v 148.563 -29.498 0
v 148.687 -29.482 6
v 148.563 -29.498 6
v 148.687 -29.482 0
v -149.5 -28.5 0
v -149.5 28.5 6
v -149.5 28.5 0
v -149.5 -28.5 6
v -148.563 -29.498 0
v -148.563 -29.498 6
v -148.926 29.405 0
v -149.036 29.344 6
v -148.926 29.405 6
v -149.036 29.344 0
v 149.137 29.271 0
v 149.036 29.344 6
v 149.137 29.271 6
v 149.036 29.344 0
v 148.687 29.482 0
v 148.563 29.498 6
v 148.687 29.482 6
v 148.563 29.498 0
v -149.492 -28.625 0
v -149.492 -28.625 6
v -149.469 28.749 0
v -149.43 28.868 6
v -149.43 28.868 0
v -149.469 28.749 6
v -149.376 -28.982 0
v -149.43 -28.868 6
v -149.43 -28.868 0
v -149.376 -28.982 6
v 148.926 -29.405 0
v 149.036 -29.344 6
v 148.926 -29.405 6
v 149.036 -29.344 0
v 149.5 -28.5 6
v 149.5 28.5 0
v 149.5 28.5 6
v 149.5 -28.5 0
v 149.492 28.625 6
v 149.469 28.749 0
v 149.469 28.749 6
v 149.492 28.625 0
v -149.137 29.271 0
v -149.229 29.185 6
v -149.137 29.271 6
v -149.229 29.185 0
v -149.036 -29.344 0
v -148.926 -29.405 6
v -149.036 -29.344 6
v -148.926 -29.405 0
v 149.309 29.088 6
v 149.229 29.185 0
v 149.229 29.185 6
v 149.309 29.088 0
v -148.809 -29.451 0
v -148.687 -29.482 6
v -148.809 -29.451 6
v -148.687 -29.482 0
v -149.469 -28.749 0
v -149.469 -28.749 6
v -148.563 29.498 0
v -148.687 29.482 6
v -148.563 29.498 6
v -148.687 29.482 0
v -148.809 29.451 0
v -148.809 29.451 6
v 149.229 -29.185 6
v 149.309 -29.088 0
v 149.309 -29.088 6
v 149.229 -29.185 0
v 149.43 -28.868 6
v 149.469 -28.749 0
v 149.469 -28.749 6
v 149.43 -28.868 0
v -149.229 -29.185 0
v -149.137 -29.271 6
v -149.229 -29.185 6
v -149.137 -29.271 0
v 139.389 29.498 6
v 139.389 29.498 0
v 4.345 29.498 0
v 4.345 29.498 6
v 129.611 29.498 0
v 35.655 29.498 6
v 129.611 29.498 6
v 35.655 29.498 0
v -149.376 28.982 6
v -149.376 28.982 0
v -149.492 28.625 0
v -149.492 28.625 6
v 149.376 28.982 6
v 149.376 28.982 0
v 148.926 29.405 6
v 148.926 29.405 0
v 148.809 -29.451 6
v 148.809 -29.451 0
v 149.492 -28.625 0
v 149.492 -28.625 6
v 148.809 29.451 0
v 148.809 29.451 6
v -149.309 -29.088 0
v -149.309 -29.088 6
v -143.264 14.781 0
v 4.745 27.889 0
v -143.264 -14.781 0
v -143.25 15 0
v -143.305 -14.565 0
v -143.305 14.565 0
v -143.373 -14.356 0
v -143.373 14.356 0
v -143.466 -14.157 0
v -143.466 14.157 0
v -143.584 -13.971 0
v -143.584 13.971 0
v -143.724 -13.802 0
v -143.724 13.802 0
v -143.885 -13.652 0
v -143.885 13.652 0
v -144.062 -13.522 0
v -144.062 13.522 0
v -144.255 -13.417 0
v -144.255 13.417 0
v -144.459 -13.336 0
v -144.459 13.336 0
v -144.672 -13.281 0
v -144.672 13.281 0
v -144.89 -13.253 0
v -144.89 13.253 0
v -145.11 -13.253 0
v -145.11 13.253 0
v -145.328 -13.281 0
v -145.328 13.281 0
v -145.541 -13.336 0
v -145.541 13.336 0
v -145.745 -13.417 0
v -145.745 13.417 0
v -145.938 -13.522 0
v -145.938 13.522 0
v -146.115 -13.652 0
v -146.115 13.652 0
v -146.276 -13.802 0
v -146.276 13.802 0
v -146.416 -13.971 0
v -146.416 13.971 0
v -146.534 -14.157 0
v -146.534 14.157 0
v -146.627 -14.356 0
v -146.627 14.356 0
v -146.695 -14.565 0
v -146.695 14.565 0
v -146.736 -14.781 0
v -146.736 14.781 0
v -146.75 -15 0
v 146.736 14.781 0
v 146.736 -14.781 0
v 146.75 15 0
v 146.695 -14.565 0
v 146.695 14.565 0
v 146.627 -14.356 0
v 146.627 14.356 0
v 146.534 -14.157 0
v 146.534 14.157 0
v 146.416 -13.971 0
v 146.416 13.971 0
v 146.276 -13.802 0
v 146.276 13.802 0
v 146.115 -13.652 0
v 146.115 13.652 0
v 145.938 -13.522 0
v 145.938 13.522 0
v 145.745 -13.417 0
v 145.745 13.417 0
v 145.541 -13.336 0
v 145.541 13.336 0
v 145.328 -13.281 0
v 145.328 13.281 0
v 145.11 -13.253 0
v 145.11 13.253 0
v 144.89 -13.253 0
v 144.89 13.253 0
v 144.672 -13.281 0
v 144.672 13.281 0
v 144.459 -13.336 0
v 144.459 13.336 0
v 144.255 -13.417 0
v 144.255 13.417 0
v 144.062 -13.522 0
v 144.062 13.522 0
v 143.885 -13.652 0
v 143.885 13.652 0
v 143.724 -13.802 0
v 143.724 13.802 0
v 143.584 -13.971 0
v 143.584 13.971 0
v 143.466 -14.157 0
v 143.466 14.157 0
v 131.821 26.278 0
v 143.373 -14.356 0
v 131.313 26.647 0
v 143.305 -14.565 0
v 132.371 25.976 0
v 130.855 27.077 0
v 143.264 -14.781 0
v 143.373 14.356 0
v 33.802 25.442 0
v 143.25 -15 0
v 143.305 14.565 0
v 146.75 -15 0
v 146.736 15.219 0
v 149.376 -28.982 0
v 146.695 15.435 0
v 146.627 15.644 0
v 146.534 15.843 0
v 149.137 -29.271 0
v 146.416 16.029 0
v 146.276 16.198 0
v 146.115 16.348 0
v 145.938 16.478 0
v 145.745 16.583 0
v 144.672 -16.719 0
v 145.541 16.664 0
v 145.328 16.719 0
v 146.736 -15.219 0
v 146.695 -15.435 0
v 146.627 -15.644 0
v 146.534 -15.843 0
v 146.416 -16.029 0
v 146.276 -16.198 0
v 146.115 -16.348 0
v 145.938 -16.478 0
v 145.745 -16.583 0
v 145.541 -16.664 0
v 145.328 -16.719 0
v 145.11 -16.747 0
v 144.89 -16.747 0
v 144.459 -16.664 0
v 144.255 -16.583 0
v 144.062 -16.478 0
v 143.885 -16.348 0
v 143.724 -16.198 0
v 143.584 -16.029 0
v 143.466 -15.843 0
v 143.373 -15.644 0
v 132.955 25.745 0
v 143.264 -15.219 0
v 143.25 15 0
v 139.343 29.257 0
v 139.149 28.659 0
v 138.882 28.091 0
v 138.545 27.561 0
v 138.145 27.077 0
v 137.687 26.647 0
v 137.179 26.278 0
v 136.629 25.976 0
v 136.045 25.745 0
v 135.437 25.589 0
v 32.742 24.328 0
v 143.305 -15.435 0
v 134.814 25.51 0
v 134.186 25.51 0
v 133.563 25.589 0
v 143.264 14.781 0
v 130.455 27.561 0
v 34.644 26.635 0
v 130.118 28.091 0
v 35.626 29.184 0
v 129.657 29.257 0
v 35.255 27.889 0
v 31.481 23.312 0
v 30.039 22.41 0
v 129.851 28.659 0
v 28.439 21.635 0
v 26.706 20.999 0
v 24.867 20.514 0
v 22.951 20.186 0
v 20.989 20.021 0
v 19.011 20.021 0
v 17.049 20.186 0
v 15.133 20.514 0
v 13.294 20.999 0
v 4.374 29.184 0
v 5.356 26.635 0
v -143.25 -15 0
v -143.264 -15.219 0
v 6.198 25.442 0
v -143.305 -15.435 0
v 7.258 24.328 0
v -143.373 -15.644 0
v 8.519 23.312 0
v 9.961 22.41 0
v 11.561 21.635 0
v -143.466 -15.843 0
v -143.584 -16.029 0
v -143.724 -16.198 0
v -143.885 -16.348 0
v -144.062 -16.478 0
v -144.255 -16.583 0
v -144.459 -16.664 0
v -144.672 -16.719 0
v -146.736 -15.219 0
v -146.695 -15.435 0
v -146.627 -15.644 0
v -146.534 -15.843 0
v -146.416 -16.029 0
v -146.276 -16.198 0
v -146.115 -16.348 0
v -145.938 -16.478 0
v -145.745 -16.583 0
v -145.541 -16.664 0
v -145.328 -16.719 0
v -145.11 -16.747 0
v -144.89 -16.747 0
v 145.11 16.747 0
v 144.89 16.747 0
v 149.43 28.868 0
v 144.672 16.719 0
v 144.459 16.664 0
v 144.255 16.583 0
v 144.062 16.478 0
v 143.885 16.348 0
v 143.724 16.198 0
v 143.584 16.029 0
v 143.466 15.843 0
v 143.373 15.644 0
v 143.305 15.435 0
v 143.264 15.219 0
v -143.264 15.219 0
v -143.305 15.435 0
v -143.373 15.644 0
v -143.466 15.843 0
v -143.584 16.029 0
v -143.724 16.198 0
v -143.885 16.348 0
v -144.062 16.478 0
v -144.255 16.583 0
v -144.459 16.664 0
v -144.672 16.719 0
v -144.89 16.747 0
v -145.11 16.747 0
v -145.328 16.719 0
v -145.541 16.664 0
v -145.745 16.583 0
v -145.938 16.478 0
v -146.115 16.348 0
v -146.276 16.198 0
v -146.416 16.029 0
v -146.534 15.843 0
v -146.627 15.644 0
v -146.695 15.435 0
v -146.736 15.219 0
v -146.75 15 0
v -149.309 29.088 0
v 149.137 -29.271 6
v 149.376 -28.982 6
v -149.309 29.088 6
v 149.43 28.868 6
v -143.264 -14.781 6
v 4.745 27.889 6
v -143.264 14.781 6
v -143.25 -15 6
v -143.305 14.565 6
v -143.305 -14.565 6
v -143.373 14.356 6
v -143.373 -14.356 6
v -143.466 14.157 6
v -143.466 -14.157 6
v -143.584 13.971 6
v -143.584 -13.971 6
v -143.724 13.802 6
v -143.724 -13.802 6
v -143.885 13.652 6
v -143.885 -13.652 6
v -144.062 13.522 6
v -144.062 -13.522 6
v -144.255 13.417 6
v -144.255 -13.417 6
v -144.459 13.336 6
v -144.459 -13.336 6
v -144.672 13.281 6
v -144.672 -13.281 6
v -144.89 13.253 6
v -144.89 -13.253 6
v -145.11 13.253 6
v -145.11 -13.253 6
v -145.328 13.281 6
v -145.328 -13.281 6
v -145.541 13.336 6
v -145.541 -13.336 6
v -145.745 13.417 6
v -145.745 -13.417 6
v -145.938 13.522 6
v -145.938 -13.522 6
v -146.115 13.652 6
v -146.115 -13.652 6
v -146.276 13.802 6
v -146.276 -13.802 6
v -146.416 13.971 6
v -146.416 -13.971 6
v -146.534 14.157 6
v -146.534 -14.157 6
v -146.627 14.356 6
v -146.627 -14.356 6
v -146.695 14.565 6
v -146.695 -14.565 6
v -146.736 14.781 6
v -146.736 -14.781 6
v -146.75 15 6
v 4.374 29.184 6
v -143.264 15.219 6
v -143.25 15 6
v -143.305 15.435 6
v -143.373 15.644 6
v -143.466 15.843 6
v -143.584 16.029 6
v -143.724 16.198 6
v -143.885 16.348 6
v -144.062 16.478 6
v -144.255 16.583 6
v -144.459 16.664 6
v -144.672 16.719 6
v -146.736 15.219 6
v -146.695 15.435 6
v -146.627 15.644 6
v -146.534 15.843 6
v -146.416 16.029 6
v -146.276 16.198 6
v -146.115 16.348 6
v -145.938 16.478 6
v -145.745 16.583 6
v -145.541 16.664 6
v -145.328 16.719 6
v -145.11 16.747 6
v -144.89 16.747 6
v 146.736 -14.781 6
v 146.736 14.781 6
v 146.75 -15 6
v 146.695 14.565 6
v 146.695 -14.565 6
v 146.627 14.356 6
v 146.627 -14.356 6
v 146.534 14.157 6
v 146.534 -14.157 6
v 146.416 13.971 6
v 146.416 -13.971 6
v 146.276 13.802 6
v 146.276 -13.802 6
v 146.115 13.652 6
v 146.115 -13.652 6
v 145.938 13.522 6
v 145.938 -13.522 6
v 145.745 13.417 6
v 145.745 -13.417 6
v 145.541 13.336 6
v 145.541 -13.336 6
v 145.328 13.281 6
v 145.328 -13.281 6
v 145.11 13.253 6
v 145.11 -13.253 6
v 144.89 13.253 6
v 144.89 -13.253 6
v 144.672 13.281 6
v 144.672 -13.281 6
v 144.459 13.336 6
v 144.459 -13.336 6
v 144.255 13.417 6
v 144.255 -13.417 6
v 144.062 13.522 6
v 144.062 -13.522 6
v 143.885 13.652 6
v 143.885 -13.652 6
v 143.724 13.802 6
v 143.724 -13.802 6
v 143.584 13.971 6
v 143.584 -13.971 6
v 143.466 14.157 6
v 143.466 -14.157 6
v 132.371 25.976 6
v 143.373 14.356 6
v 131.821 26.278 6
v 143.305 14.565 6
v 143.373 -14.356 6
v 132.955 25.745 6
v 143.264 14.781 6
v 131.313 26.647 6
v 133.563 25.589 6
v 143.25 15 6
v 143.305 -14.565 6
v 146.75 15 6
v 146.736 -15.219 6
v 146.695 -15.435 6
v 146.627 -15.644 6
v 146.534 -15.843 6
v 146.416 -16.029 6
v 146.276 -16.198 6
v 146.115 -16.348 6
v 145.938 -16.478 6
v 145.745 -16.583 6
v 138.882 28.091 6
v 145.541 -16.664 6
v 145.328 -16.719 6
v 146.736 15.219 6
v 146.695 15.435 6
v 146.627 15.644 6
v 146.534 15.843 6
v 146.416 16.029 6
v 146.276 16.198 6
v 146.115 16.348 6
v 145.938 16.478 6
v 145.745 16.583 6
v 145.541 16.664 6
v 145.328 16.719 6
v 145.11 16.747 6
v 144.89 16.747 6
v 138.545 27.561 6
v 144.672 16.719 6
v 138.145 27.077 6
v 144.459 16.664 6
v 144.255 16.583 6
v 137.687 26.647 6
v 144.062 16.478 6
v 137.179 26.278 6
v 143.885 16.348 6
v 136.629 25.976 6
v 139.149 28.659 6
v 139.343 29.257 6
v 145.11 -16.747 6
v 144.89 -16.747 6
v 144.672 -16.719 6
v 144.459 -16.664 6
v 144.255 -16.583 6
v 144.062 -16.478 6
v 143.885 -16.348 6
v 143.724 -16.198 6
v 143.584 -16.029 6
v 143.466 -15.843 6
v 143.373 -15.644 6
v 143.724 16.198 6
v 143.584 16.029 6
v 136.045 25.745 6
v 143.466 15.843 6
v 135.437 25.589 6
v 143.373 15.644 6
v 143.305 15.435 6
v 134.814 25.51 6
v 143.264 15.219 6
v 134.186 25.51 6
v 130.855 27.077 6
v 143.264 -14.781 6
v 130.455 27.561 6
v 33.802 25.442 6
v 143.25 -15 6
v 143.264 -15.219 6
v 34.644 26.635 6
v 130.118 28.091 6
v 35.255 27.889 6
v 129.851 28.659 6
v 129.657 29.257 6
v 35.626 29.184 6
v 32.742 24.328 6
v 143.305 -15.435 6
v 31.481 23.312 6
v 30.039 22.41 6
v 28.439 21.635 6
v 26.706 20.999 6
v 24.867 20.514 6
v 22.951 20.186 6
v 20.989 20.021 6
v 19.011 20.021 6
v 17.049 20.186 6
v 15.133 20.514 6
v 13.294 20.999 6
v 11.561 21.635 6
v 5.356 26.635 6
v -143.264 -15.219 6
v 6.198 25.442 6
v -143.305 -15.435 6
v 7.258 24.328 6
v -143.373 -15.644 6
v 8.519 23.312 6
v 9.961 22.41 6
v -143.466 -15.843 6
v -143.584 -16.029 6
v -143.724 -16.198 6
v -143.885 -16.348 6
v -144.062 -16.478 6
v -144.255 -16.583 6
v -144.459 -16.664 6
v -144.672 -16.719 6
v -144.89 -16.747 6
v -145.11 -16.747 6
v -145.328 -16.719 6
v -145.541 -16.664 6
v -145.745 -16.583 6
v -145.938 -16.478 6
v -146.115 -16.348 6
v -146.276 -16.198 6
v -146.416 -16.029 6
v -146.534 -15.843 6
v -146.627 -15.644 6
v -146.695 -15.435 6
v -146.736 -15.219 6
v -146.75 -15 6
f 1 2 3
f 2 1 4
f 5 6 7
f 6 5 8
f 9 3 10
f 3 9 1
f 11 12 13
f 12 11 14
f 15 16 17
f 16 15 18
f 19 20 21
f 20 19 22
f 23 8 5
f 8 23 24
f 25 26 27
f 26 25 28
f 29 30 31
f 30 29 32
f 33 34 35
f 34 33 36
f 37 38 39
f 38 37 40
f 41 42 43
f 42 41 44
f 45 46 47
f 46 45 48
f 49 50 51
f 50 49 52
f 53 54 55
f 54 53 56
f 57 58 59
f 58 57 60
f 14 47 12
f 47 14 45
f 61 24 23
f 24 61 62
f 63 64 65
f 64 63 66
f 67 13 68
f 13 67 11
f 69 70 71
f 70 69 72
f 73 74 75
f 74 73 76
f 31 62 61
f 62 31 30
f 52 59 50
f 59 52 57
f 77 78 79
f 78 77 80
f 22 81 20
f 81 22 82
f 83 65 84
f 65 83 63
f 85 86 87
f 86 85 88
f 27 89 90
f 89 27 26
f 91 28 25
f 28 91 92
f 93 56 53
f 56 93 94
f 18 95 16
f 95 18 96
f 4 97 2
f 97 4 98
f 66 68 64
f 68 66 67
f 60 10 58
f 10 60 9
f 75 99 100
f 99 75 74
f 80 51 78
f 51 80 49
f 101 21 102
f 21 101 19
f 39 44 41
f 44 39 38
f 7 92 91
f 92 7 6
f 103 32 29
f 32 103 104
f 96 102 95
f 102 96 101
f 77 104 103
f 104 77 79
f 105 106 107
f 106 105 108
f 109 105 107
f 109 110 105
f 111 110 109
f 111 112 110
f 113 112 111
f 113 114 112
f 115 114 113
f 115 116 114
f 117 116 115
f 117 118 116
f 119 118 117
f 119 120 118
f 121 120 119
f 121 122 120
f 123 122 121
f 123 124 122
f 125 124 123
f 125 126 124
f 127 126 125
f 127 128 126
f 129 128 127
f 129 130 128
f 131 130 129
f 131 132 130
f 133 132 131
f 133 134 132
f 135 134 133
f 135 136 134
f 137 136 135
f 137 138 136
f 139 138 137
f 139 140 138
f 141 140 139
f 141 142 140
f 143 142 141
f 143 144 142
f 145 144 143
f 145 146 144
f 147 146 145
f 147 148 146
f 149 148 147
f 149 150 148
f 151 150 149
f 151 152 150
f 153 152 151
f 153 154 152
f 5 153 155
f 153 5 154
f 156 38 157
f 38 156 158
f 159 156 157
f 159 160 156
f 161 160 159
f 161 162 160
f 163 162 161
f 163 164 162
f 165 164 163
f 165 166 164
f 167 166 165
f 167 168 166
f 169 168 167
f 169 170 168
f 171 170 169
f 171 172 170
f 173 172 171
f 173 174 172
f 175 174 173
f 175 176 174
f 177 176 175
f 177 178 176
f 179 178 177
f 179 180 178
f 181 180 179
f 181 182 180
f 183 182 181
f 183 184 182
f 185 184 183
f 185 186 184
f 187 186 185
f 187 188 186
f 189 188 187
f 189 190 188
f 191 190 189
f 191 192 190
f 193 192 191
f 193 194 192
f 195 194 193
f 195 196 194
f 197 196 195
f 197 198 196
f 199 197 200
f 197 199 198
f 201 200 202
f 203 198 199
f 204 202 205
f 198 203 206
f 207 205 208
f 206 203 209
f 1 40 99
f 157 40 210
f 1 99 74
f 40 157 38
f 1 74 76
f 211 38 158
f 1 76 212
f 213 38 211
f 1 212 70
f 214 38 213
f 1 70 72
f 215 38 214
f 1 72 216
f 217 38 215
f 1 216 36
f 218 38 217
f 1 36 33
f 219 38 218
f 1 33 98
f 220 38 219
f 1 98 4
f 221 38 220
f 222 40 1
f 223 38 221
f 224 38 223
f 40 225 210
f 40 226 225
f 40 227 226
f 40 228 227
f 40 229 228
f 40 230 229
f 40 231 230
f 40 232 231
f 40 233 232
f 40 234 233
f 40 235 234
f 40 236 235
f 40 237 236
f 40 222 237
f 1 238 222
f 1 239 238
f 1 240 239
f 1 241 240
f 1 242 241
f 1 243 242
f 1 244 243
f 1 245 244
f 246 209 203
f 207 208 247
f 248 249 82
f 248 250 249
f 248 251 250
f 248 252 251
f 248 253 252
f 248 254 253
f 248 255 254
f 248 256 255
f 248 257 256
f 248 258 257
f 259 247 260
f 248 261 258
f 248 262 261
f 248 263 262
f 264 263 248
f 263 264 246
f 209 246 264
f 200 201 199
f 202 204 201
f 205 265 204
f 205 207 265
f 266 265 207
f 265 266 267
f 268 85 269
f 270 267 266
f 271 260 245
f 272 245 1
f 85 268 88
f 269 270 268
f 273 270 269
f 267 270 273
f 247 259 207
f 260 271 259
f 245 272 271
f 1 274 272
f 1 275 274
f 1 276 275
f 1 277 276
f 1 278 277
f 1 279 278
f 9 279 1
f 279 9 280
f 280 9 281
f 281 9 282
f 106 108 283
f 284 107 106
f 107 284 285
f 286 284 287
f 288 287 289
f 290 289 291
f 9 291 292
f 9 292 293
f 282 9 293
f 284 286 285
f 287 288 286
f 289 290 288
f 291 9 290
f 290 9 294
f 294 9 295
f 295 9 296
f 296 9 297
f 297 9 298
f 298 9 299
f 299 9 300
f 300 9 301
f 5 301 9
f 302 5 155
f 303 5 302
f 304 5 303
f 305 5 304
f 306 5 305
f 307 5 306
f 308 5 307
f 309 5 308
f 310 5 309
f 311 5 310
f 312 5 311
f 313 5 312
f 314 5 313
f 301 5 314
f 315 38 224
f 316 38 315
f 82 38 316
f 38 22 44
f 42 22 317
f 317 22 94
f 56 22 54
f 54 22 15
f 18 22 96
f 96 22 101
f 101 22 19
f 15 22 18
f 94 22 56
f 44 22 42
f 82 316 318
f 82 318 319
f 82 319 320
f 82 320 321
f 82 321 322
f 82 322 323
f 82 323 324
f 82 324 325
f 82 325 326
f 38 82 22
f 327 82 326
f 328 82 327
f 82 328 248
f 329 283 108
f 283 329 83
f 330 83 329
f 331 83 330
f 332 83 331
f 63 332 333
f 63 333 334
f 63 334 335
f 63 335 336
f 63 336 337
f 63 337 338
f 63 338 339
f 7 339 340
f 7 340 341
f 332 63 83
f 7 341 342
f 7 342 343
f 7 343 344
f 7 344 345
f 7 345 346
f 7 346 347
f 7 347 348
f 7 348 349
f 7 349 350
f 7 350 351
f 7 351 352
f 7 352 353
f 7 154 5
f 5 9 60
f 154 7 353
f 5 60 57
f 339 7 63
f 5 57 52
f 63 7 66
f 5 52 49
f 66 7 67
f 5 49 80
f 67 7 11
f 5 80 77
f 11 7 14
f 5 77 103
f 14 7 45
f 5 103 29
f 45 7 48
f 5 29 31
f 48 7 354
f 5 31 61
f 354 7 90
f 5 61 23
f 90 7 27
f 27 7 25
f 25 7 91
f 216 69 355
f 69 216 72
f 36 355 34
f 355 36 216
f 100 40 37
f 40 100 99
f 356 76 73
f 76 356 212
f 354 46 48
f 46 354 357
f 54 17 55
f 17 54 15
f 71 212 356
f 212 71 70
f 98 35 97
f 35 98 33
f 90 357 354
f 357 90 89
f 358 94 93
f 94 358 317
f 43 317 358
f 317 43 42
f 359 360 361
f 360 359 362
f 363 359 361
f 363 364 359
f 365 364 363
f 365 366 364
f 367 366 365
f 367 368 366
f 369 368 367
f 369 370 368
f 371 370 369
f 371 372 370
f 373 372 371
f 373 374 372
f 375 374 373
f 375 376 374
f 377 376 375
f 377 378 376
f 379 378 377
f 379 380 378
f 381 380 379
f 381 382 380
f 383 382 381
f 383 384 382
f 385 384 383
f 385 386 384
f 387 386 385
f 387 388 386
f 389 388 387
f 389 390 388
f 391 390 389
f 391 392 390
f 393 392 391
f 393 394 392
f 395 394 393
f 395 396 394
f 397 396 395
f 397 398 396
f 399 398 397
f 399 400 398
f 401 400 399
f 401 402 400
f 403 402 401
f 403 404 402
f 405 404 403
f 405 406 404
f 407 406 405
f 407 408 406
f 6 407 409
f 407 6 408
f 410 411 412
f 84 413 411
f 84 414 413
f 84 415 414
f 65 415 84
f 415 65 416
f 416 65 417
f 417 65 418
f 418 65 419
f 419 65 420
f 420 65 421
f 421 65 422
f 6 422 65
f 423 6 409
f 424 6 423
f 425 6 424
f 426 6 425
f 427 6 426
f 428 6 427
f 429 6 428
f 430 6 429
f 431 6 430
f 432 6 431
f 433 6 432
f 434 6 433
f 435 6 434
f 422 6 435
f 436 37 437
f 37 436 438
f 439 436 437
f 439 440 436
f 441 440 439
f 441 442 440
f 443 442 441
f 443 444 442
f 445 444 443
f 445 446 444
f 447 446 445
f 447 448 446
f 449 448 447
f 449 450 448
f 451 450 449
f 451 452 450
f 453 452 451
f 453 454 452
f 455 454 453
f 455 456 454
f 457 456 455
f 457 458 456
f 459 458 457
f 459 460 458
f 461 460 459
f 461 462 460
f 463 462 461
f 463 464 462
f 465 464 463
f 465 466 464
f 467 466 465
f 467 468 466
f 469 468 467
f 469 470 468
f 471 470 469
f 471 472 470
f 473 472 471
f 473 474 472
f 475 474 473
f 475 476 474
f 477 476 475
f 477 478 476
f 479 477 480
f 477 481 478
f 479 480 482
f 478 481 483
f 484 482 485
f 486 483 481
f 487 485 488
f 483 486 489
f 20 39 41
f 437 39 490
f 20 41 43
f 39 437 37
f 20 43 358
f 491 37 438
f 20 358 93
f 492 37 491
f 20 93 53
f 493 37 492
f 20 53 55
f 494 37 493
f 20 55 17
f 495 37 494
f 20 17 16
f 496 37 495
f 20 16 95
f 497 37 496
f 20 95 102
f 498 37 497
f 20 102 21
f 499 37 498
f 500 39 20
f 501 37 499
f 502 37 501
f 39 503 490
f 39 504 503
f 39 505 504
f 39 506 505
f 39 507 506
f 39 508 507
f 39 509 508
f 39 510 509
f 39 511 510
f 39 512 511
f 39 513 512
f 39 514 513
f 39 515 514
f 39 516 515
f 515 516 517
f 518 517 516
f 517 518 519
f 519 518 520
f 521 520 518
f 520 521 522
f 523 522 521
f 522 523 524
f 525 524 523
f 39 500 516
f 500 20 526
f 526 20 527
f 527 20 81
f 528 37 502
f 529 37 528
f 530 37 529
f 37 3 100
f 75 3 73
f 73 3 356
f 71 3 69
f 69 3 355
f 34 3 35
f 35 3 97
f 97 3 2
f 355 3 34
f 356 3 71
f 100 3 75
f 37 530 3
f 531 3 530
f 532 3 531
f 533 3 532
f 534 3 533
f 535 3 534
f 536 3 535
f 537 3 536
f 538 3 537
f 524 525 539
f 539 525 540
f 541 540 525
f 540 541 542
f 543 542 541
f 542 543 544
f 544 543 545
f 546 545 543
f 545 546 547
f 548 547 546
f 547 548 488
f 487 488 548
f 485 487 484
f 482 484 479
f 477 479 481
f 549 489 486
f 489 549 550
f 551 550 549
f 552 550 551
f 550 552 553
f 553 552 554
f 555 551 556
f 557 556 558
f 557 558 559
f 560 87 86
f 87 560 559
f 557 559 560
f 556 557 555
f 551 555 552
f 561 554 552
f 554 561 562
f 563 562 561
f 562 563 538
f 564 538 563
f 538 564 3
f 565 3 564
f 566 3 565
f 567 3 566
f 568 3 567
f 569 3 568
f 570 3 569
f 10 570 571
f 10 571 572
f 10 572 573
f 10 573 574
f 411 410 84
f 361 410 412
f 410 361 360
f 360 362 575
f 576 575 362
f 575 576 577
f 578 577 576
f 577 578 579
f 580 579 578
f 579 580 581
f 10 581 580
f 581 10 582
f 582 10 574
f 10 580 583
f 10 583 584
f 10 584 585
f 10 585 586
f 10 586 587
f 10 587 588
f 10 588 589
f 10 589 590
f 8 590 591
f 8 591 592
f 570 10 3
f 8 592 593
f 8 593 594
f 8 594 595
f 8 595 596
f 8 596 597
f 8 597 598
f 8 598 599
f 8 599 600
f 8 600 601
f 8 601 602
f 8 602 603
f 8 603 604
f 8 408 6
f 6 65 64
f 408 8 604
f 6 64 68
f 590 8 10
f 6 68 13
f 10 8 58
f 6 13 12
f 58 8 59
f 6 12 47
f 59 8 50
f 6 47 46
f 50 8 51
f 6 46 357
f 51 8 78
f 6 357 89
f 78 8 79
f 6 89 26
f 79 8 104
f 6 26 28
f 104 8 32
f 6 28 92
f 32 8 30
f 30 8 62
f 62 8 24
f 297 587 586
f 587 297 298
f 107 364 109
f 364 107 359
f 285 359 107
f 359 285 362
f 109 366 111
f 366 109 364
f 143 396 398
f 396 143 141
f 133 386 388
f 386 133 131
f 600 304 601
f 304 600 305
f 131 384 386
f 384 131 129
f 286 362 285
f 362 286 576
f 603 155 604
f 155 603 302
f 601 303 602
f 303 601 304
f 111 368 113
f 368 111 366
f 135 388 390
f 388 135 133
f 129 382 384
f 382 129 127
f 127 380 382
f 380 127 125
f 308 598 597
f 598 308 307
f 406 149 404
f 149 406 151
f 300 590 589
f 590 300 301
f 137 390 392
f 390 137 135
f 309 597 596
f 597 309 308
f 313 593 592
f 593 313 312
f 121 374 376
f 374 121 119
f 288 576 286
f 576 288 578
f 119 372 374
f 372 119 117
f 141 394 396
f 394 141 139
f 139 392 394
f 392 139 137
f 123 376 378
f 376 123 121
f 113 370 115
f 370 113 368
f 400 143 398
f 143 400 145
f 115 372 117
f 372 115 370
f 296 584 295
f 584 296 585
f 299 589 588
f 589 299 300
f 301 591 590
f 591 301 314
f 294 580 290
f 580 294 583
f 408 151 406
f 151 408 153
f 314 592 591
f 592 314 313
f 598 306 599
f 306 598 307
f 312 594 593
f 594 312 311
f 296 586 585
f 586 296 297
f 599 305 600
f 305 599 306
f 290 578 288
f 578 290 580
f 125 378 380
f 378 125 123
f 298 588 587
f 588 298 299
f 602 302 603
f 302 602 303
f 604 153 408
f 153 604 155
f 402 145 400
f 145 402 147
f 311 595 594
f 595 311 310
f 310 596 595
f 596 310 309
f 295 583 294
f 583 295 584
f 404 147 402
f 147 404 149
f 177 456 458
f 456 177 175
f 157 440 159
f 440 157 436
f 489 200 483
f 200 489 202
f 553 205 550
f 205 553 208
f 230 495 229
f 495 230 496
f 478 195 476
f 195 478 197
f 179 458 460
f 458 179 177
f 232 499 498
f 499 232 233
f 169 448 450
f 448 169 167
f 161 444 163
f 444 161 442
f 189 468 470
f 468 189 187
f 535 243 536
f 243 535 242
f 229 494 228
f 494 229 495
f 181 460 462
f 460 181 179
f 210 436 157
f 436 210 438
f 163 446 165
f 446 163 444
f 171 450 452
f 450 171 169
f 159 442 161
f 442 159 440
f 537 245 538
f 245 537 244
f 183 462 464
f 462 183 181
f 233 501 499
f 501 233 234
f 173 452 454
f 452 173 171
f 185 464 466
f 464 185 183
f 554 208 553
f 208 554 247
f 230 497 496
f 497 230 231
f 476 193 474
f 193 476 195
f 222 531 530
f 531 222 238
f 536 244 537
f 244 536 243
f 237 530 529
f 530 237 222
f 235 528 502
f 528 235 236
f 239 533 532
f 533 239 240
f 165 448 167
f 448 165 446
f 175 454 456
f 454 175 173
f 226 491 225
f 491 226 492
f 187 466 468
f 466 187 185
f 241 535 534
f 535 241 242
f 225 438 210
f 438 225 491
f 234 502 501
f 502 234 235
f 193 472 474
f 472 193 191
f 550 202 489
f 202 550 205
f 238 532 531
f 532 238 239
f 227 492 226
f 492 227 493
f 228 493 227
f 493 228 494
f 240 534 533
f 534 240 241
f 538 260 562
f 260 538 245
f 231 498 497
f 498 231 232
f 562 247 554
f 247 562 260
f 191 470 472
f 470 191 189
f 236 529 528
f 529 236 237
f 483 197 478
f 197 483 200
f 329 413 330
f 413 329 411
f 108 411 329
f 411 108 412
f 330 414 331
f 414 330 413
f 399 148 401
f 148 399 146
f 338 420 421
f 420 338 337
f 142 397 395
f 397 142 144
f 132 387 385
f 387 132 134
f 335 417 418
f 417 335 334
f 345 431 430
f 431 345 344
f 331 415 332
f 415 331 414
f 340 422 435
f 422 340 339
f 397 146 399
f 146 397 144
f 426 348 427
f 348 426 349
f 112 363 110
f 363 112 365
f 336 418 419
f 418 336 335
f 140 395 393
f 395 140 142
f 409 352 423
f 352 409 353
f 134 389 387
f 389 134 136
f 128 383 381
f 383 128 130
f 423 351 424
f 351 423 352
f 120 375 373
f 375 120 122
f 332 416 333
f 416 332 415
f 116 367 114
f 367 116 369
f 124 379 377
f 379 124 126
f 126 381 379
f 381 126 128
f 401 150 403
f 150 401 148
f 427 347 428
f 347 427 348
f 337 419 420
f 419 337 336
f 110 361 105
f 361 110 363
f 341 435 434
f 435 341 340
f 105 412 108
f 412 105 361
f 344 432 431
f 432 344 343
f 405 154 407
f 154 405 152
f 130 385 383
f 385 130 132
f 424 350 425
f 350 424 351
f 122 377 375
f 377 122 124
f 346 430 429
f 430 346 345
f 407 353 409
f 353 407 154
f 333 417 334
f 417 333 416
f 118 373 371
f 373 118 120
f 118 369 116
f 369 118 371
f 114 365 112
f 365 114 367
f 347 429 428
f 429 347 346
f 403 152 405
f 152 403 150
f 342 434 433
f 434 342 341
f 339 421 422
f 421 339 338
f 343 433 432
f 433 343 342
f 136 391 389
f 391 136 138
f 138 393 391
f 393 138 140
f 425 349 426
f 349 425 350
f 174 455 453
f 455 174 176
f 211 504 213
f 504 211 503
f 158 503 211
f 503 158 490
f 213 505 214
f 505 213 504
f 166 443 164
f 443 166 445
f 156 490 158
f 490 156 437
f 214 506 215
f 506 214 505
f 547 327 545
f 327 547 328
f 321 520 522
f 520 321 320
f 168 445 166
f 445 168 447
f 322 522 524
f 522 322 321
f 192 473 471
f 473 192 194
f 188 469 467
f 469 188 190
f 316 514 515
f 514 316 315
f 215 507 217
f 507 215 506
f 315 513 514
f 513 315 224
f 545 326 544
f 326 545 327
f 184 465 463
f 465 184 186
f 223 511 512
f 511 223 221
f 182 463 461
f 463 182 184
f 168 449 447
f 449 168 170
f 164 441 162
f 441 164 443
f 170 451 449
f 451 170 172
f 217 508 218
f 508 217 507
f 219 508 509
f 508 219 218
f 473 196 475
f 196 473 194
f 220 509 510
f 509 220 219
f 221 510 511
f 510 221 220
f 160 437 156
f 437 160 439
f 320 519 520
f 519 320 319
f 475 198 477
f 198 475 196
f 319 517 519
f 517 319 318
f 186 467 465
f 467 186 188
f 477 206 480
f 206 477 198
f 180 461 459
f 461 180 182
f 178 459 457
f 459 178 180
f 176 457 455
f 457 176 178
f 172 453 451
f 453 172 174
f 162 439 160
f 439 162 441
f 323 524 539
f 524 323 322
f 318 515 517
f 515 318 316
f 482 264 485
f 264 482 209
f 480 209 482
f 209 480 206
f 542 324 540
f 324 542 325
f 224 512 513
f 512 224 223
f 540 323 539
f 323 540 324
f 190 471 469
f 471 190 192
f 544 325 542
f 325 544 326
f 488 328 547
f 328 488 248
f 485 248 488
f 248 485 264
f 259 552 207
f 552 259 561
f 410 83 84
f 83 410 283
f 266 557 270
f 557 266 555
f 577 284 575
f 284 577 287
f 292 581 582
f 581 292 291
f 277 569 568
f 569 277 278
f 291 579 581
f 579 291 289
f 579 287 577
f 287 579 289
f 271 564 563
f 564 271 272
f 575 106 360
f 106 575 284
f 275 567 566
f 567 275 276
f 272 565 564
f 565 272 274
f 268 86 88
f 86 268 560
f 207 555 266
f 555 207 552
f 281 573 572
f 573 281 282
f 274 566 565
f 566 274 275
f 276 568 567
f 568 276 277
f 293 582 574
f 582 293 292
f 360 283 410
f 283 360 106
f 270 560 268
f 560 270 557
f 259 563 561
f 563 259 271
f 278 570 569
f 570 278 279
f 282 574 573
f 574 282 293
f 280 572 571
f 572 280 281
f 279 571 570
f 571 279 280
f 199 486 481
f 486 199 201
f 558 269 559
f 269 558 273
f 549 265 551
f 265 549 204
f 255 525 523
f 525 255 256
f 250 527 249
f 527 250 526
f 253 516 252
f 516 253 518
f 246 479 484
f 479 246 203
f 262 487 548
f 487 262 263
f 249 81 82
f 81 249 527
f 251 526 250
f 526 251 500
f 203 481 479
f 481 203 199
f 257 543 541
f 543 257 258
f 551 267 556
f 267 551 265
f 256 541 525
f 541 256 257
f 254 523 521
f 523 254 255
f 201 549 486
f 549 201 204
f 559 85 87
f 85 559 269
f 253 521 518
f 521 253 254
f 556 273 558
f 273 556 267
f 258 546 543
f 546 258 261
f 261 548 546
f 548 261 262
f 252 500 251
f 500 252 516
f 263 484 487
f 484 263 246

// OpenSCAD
width = 299;
depth = 59;
thick = 6;

holeDia = 3.5;
holeXOff = 4.5;
holeYOff = 14.5;

$fn=50;

difference() {
   hull() {
      translate([width/2-1,depth/2-1,0]) cylinder(r=1,h=thick);
      translate([-width/2+1,depth/2-1,0]) cylinder(r=1,h=thick);
      translate([width/2-1,-depth/2+1,0]) cylinder(r=1,h=thick);
      translate([-width/2+1,-depth/2+1,0]) cylinder(r=1,h=thick);
   }

   
   translate([-width/2+holeXOff,-depth/2+holeYOff,-1]) cylinder(d=holeDia,h=thick+2);
   translate([width/2-holeXOff,-depth/2+holeYOff,-1]) cylinder(d=holeDia,h=thick+2);
   translate([-width/2+holeXOff,depth/2-holeYOff,-1]) cylinder(d=holeDia,h=thick+2);
   translate([width/2-holeXOff,depth/2-holeYOff,-1]) cylinder(d=holeDia,h=thick+2);
   translate([20,depth/2+1,-1]) scale([1.5,1,1]) cylinder(d=21,h=thick+2);
   translate([width/2-15,depth/2+1,-1]) cylinder(d=10,h=thick+2);
}
